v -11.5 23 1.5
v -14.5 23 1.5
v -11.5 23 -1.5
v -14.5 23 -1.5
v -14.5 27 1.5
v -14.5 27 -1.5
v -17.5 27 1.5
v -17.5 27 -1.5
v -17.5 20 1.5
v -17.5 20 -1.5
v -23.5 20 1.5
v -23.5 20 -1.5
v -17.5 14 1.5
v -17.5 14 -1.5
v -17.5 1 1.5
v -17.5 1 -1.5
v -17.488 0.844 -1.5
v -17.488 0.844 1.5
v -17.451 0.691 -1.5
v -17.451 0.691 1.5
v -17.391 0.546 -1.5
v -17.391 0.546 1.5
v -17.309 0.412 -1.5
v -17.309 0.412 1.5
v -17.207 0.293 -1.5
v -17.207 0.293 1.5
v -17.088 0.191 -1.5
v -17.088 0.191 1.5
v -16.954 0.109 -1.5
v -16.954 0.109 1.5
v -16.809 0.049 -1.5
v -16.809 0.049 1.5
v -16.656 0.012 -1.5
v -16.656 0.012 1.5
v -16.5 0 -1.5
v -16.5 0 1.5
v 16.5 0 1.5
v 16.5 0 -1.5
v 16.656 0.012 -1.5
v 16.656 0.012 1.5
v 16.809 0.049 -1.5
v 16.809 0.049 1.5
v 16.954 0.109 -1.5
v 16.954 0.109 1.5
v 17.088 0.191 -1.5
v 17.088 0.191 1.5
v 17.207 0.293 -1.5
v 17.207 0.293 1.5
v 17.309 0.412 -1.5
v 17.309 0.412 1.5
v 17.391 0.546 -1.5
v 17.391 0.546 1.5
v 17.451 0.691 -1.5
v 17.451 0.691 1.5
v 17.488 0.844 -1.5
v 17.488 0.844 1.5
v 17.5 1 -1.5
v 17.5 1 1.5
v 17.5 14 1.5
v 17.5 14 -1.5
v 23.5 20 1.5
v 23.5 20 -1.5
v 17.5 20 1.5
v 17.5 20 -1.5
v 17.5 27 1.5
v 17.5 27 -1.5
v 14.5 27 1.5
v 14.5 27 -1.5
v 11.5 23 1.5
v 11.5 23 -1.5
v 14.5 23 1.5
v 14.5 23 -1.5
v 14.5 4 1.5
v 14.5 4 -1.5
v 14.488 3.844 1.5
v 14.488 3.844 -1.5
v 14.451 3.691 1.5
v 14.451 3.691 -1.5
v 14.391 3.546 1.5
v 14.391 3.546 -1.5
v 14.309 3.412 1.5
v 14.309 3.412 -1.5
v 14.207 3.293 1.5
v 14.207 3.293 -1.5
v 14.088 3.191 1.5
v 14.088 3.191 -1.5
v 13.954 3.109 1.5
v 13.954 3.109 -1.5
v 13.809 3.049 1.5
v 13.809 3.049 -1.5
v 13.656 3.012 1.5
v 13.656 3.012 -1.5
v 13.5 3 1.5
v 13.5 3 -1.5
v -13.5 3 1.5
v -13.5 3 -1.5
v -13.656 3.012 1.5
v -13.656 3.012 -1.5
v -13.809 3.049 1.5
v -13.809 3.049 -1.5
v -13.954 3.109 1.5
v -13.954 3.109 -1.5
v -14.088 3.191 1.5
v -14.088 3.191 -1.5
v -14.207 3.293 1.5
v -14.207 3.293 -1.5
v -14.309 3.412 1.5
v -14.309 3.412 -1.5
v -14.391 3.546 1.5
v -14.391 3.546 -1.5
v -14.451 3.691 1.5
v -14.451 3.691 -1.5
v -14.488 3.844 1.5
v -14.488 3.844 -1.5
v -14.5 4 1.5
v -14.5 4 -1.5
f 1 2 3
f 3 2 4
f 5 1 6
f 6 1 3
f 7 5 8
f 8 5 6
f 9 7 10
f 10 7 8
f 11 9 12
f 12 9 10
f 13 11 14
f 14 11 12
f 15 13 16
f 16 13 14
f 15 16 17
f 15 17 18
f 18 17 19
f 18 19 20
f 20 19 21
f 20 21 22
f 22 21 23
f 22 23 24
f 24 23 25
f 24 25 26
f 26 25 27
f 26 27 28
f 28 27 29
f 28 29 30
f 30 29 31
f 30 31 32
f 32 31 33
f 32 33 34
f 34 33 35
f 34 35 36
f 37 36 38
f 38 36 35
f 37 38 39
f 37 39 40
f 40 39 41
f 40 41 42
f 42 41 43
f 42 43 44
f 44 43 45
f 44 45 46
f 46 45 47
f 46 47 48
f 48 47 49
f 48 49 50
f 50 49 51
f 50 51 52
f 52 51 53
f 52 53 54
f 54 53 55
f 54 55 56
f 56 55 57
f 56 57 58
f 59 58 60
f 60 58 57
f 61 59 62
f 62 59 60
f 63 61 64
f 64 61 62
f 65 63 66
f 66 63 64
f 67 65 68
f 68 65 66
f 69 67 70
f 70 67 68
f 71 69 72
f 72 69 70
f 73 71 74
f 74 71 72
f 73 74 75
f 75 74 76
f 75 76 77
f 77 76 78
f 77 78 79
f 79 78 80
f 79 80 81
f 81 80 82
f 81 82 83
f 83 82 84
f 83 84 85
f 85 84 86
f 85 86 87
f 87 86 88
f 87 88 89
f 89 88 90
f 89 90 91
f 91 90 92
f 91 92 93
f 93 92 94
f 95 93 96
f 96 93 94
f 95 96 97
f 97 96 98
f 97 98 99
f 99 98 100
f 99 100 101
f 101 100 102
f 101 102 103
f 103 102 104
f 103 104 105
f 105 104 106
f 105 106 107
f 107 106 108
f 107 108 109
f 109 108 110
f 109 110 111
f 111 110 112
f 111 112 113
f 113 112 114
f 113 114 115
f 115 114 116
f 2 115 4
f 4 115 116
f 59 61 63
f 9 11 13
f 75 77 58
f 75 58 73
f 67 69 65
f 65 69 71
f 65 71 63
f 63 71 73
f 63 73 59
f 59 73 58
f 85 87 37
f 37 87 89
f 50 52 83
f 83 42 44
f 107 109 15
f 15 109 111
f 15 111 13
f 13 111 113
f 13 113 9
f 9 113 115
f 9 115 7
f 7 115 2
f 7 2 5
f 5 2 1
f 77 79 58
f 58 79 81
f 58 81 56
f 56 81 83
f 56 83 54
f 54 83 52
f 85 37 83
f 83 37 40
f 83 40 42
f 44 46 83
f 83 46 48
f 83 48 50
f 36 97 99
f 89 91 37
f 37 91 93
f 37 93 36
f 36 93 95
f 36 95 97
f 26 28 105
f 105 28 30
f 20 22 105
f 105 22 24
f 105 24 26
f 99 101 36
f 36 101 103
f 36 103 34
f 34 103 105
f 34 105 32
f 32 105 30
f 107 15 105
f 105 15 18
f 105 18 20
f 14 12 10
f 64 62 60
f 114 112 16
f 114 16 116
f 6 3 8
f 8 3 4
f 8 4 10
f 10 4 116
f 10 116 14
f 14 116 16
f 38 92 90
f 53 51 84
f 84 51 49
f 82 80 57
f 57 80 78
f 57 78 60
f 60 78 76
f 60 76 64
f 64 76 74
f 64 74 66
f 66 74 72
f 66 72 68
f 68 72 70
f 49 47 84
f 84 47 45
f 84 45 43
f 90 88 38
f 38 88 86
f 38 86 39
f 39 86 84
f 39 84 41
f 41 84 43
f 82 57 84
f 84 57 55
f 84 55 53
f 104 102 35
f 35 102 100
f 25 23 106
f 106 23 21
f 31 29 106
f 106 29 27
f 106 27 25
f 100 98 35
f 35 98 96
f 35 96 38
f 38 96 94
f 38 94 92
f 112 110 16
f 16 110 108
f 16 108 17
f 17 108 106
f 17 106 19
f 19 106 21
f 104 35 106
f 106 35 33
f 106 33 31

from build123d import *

# Parameters (mm, degrees)
BOSS_EXTRUDE1_DEPTH = 1.5


with BuildPart() as part:
    # Sketch1 → Boss-Extrude1 (new, symmetric)
    with BuildSketch(Plane.XY):
        with BuildLine():
            Line((-13.5, 3), (13.5, 3))
            ThreePointArc((13.5, 3), (14.207106781, 3.292893219), (14.5, 4))
            Line((14.5, 4), (14.5, 23))
            Line((14.5, 23), (11.5, 23))
            Line((11.5, 23), (14.5, 27))
            Line((14.5, 27), (17.5, 27))
            Line((17.5, 27), (17.5, 20))
            Line((17.5, 20), (23.5, 20))
            Line((23.5, 20), (17.5, 14))
            Line((17.5, 14), (17.5, 1))
            ThreePointArc((17.5, 1), (17.207106781, 0.292893219), (16.5, 0))
            Line((16.5, 0), (-16.5, 0))
            ThreePointArc((-16.5, 0), (-17.207106781, 0.292893219), (-17.5, 1))
            Line((-17.5, 1), (-17.5, 14))
            Line((-17.5, 14), (-23.5, 20))
            Line((-23.5, 20), (-17.5, 20))
            Line((-17.5, 20), (-17.5, 27))
            Line((-17.5, 27), (-14.5, 27))
            Line((-14.5, 27), (-11.5, 23))
            Line((-11.5, 23), (-14.5, 23))
            Line((-14.5, 23), (-14.5, 4))
            ThreePointArc((-14.5, 4), (-14.207106781, 3.292893219), (-13.5, 3))
        make_face()
    extrude(amount=BOSS_EXTRUDE1_DEPTH, both=True)


solid = part.part
